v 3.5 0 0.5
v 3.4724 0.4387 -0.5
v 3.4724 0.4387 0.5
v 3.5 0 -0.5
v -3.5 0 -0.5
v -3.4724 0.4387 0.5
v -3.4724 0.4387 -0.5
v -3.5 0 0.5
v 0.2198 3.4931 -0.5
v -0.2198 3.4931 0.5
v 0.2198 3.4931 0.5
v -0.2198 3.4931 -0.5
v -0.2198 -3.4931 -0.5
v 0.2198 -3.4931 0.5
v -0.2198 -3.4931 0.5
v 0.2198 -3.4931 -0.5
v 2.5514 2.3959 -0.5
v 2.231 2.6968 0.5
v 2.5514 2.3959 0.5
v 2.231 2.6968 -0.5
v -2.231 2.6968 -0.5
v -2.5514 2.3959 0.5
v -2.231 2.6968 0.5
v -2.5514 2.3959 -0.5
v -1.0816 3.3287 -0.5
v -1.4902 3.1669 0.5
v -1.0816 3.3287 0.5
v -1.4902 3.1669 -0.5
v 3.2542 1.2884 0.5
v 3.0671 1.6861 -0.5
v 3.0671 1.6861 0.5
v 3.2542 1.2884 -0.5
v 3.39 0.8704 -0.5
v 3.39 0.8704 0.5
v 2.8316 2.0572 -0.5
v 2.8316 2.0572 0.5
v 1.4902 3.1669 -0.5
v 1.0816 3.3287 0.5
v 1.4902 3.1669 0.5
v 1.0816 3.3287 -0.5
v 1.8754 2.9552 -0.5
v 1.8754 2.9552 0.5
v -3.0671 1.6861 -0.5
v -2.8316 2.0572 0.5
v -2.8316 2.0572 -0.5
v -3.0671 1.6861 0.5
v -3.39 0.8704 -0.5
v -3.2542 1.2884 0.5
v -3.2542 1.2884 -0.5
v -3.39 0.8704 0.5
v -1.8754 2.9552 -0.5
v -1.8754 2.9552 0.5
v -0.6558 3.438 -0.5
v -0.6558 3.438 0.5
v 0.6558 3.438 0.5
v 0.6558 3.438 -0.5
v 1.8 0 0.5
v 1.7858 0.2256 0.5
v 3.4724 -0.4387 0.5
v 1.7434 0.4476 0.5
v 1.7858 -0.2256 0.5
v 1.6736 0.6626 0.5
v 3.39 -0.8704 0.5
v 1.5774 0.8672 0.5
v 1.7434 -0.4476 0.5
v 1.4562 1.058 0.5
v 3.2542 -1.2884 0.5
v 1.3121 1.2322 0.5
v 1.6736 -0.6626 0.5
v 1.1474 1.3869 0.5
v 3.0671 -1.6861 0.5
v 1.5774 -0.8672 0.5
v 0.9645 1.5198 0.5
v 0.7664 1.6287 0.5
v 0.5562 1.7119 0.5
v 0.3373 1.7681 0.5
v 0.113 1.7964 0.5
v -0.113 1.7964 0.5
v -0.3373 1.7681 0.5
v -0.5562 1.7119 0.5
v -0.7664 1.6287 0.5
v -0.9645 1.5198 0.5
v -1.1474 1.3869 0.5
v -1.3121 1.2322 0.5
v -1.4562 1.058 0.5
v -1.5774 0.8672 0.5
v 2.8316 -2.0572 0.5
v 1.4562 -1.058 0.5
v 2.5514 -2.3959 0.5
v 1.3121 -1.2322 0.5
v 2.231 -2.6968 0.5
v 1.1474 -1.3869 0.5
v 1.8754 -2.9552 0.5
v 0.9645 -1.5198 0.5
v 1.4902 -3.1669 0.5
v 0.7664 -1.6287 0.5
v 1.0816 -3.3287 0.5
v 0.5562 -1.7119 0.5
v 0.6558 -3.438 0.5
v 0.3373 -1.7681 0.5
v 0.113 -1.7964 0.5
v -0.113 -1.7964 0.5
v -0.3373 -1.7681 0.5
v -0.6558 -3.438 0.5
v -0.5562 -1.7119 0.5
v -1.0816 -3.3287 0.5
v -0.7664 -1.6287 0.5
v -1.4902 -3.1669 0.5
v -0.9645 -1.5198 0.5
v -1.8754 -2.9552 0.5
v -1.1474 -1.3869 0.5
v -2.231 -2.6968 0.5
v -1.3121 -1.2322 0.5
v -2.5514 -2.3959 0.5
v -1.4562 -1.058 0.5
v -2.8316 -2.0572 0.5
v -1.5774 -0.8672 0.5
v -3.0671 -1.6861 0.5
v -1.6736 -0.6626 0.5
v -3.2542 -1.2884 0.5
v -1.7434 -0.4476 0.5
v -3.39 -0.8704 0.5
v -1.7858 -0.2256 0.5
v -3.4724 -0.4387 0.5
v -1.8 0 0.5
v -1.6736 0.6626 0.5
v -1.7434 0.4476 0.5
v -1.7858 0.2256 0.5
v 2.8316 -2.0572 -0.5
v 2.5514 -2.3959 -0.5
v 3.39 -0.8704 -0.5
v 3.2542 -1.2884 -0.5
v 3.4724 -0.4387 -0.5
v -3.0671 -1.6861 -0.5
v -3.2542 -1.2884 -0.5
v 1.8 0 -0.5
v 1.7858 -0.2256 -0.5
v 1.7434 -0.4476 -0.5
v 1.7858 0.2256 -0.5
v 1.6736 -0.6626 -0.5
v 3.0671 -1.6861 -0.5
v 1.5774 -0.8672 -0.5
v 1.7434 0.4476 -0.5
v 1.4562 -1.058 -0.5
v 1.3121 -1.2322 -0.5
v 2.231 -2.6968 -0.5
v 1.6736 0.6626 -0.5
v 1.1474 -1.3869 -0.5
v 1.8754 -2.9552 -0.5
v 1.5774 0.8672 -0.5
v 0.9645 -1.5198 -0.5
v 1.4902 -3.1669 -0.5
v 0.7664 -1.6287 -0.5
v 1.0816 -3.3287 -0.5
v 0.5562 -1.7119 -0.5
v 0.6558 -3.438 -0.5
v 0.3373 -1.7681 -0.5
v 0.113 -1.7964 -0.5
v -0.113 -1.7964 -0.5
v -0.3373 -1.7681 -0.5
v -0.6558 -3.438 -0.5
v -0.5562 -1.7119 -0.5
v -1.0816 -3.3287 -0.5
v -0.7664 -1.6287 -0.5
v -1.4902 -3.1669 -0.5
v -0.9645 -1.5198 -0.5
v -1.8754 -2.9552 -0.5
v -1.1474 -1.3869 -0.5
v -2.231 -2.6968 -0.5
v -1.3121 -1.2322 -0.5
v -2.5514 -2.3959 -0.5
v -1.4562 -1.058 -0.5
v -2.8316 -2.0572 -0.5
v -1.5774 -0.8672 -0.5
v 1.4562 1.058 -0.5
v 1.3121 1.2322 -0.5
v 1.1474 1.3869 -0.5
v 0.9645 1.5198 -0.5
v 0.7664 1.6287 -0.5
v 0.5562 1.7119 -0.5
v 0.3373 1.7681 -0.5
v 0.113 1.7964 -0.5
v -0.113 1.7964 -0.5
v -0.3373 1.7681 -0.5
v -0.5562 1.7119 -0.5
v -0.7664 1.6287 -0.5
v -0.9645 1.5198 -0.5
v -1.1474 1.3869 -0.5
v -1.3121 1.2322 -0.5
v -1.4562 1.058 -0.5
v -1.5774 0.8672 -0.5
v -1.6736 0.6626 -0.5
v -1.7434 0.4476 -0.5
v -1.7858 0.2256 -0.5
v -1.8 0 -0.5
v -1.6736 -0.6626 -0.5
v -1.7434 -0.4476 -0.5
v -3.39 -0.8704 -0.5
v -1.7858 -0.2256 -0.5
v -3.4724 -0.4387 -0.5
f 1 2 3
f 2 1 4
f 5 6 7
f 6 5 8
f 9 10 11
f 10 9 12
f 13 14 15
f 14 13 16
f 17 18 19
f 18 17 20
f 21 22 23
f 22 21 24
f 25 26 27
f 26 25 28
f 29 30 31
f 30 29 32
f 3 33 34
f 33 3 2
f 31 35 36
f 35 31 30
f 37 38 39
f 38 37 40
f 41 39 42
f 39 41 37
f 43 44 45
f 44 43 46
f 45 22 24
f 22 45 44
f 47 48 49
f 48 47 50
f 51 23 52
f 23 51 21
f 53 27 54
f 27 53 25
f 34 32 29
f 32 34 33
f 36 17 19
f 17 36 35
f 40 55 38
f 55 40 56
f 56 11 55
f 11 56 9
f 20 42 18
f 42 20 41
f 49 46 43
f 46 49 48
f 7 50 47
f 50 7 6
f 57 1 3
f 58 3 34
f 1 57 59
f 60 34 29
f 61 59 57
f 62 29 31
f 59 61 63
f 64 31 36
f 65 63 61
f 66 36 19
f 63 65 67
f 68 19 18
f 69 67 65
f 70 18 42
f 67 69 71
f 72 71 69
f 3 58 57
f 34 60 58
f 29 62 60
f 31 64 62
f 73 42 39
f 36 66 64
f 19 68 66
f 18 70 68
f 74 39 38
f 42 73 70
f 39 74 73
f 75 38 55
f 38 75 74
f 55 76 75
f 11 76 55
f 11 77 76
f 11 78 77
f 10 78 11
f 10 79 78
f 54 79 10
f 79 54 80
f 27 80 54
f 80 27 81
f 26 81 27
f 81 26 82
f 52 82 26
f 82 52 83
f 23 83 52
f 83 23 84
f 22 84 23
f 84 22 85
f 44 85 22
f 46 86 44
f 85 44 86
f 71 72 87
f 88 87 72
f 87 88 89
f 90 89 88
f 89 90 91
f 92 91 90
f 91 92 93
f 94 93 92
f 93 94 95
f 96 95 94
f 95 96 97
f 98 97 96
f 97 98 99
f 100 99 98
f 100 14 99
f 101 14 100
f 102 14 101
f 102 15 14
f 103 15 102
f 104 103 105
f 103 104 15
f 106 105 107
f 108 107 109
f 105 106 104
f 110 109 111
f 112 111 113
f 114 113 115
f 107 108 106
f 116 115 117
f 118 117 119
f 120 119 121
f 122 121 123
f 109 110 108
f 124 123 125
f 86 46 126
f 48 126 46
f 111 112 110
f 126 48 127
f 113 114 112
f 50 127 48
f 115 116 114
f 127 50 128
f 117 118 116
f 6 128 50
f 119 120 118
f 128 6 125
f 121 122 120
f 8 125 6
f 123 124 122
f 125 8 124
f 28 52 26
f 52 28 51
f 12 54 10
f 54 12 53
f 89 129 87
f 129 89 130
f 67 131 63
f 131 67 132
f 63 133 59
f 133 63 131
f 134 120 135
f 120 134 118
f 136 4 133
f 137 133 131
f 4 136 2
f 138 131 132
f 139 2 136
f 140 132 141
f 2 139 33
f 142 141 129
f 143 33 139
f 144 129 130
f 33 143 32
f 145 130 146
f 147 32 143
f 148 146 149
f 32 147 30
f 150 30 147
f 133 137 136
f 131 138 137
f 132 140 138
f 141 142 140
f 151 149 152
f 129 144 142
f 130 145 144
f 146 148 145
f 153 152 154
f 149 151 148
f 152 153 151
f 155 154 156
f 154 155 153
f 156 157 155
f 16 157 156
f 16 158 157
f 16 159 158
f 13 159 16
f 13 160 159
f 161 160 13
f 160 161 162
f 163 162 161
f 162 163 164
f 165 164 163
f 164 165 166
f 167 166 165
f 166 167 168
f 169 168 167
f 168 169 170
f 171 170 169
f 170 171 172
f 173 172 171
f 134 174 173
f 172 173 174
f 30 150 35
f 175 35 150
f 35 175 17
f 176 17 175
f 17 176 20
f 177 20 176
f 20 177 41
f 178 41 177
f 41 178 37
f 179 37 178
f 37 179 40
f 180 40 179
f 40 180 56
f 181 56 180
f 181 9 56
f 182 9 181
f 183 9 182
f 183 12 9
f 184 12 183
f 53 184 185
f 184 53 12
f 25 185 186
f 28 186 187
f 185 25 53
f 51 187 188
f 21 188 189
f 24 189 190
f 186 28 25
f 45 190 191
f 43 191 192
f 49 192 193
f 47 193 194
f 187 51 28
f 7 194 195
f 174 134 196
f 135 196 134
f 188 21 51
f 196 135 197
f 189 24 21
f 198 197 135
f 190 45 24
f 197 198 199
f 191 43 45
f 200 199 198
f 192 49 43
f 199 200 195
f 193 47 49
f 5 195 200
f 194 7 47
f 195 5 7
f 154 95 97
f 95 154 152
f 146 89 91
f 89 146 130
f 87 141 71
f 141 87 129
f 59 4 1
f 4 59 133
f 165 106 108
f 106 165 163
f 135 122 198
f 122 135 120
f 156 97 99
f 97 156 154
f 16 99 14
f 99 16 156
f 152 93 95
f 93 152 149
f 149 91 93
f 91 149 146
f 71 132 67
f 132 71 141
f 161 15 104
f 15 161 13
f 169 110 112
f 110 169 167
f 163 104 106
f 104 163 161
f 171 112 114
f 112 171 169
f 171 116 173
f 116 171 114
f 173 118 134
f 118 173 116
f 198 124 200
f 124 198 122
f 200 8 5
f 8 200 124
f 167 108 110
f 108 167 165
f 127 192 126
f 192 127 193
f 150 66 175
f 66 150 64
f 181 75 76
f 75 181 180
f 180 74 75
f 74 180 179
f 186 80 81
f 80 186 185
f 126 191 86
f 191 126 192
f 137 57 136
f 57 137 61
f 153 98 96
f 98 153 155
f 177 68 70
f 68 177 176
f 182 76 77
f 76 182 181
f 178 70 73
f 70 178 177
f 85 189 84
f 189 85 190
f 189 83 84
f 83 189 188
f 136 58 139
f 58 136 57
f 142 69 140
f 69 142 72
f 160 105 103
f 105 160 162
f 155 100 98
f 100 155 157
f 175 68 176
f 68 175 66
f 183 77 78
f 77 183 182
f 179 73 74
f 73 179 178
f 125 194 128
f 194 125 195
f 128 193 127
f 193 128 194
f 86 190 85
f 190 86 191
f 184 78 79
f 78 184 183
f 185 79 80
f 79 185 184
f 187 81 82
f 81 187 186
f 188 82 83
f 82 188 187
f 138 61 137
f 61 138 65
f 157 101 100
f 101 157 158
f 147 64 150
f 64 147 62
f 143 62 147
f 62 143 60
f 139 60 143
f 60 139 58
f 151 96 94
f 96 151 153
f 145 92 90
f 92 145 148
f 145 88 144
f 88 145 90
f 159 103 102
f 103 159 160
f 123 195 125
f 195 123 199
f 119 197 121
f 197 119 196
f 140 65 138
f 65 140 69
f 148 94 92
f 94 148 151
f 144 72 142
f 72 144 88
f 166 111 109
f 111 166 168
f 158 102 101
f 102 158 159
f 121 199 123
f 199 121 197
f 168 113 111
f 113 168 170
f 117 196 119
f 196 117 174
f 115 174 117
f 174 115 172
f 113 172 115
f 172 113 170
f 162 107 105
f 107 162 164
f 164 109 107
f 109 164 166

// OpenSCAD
$fn = 50;


difference() {
	union() {
		translate(v = [0, 0, -0.5000000000]) {
			cylinder(h = 1, r = 3.5000000000);
		}
	}
	union() {
		#translate(v = [0, 0, -100.0000000000]) {
			cylinder(h = 200, r = 1.8000000000);
		}
	}
}
